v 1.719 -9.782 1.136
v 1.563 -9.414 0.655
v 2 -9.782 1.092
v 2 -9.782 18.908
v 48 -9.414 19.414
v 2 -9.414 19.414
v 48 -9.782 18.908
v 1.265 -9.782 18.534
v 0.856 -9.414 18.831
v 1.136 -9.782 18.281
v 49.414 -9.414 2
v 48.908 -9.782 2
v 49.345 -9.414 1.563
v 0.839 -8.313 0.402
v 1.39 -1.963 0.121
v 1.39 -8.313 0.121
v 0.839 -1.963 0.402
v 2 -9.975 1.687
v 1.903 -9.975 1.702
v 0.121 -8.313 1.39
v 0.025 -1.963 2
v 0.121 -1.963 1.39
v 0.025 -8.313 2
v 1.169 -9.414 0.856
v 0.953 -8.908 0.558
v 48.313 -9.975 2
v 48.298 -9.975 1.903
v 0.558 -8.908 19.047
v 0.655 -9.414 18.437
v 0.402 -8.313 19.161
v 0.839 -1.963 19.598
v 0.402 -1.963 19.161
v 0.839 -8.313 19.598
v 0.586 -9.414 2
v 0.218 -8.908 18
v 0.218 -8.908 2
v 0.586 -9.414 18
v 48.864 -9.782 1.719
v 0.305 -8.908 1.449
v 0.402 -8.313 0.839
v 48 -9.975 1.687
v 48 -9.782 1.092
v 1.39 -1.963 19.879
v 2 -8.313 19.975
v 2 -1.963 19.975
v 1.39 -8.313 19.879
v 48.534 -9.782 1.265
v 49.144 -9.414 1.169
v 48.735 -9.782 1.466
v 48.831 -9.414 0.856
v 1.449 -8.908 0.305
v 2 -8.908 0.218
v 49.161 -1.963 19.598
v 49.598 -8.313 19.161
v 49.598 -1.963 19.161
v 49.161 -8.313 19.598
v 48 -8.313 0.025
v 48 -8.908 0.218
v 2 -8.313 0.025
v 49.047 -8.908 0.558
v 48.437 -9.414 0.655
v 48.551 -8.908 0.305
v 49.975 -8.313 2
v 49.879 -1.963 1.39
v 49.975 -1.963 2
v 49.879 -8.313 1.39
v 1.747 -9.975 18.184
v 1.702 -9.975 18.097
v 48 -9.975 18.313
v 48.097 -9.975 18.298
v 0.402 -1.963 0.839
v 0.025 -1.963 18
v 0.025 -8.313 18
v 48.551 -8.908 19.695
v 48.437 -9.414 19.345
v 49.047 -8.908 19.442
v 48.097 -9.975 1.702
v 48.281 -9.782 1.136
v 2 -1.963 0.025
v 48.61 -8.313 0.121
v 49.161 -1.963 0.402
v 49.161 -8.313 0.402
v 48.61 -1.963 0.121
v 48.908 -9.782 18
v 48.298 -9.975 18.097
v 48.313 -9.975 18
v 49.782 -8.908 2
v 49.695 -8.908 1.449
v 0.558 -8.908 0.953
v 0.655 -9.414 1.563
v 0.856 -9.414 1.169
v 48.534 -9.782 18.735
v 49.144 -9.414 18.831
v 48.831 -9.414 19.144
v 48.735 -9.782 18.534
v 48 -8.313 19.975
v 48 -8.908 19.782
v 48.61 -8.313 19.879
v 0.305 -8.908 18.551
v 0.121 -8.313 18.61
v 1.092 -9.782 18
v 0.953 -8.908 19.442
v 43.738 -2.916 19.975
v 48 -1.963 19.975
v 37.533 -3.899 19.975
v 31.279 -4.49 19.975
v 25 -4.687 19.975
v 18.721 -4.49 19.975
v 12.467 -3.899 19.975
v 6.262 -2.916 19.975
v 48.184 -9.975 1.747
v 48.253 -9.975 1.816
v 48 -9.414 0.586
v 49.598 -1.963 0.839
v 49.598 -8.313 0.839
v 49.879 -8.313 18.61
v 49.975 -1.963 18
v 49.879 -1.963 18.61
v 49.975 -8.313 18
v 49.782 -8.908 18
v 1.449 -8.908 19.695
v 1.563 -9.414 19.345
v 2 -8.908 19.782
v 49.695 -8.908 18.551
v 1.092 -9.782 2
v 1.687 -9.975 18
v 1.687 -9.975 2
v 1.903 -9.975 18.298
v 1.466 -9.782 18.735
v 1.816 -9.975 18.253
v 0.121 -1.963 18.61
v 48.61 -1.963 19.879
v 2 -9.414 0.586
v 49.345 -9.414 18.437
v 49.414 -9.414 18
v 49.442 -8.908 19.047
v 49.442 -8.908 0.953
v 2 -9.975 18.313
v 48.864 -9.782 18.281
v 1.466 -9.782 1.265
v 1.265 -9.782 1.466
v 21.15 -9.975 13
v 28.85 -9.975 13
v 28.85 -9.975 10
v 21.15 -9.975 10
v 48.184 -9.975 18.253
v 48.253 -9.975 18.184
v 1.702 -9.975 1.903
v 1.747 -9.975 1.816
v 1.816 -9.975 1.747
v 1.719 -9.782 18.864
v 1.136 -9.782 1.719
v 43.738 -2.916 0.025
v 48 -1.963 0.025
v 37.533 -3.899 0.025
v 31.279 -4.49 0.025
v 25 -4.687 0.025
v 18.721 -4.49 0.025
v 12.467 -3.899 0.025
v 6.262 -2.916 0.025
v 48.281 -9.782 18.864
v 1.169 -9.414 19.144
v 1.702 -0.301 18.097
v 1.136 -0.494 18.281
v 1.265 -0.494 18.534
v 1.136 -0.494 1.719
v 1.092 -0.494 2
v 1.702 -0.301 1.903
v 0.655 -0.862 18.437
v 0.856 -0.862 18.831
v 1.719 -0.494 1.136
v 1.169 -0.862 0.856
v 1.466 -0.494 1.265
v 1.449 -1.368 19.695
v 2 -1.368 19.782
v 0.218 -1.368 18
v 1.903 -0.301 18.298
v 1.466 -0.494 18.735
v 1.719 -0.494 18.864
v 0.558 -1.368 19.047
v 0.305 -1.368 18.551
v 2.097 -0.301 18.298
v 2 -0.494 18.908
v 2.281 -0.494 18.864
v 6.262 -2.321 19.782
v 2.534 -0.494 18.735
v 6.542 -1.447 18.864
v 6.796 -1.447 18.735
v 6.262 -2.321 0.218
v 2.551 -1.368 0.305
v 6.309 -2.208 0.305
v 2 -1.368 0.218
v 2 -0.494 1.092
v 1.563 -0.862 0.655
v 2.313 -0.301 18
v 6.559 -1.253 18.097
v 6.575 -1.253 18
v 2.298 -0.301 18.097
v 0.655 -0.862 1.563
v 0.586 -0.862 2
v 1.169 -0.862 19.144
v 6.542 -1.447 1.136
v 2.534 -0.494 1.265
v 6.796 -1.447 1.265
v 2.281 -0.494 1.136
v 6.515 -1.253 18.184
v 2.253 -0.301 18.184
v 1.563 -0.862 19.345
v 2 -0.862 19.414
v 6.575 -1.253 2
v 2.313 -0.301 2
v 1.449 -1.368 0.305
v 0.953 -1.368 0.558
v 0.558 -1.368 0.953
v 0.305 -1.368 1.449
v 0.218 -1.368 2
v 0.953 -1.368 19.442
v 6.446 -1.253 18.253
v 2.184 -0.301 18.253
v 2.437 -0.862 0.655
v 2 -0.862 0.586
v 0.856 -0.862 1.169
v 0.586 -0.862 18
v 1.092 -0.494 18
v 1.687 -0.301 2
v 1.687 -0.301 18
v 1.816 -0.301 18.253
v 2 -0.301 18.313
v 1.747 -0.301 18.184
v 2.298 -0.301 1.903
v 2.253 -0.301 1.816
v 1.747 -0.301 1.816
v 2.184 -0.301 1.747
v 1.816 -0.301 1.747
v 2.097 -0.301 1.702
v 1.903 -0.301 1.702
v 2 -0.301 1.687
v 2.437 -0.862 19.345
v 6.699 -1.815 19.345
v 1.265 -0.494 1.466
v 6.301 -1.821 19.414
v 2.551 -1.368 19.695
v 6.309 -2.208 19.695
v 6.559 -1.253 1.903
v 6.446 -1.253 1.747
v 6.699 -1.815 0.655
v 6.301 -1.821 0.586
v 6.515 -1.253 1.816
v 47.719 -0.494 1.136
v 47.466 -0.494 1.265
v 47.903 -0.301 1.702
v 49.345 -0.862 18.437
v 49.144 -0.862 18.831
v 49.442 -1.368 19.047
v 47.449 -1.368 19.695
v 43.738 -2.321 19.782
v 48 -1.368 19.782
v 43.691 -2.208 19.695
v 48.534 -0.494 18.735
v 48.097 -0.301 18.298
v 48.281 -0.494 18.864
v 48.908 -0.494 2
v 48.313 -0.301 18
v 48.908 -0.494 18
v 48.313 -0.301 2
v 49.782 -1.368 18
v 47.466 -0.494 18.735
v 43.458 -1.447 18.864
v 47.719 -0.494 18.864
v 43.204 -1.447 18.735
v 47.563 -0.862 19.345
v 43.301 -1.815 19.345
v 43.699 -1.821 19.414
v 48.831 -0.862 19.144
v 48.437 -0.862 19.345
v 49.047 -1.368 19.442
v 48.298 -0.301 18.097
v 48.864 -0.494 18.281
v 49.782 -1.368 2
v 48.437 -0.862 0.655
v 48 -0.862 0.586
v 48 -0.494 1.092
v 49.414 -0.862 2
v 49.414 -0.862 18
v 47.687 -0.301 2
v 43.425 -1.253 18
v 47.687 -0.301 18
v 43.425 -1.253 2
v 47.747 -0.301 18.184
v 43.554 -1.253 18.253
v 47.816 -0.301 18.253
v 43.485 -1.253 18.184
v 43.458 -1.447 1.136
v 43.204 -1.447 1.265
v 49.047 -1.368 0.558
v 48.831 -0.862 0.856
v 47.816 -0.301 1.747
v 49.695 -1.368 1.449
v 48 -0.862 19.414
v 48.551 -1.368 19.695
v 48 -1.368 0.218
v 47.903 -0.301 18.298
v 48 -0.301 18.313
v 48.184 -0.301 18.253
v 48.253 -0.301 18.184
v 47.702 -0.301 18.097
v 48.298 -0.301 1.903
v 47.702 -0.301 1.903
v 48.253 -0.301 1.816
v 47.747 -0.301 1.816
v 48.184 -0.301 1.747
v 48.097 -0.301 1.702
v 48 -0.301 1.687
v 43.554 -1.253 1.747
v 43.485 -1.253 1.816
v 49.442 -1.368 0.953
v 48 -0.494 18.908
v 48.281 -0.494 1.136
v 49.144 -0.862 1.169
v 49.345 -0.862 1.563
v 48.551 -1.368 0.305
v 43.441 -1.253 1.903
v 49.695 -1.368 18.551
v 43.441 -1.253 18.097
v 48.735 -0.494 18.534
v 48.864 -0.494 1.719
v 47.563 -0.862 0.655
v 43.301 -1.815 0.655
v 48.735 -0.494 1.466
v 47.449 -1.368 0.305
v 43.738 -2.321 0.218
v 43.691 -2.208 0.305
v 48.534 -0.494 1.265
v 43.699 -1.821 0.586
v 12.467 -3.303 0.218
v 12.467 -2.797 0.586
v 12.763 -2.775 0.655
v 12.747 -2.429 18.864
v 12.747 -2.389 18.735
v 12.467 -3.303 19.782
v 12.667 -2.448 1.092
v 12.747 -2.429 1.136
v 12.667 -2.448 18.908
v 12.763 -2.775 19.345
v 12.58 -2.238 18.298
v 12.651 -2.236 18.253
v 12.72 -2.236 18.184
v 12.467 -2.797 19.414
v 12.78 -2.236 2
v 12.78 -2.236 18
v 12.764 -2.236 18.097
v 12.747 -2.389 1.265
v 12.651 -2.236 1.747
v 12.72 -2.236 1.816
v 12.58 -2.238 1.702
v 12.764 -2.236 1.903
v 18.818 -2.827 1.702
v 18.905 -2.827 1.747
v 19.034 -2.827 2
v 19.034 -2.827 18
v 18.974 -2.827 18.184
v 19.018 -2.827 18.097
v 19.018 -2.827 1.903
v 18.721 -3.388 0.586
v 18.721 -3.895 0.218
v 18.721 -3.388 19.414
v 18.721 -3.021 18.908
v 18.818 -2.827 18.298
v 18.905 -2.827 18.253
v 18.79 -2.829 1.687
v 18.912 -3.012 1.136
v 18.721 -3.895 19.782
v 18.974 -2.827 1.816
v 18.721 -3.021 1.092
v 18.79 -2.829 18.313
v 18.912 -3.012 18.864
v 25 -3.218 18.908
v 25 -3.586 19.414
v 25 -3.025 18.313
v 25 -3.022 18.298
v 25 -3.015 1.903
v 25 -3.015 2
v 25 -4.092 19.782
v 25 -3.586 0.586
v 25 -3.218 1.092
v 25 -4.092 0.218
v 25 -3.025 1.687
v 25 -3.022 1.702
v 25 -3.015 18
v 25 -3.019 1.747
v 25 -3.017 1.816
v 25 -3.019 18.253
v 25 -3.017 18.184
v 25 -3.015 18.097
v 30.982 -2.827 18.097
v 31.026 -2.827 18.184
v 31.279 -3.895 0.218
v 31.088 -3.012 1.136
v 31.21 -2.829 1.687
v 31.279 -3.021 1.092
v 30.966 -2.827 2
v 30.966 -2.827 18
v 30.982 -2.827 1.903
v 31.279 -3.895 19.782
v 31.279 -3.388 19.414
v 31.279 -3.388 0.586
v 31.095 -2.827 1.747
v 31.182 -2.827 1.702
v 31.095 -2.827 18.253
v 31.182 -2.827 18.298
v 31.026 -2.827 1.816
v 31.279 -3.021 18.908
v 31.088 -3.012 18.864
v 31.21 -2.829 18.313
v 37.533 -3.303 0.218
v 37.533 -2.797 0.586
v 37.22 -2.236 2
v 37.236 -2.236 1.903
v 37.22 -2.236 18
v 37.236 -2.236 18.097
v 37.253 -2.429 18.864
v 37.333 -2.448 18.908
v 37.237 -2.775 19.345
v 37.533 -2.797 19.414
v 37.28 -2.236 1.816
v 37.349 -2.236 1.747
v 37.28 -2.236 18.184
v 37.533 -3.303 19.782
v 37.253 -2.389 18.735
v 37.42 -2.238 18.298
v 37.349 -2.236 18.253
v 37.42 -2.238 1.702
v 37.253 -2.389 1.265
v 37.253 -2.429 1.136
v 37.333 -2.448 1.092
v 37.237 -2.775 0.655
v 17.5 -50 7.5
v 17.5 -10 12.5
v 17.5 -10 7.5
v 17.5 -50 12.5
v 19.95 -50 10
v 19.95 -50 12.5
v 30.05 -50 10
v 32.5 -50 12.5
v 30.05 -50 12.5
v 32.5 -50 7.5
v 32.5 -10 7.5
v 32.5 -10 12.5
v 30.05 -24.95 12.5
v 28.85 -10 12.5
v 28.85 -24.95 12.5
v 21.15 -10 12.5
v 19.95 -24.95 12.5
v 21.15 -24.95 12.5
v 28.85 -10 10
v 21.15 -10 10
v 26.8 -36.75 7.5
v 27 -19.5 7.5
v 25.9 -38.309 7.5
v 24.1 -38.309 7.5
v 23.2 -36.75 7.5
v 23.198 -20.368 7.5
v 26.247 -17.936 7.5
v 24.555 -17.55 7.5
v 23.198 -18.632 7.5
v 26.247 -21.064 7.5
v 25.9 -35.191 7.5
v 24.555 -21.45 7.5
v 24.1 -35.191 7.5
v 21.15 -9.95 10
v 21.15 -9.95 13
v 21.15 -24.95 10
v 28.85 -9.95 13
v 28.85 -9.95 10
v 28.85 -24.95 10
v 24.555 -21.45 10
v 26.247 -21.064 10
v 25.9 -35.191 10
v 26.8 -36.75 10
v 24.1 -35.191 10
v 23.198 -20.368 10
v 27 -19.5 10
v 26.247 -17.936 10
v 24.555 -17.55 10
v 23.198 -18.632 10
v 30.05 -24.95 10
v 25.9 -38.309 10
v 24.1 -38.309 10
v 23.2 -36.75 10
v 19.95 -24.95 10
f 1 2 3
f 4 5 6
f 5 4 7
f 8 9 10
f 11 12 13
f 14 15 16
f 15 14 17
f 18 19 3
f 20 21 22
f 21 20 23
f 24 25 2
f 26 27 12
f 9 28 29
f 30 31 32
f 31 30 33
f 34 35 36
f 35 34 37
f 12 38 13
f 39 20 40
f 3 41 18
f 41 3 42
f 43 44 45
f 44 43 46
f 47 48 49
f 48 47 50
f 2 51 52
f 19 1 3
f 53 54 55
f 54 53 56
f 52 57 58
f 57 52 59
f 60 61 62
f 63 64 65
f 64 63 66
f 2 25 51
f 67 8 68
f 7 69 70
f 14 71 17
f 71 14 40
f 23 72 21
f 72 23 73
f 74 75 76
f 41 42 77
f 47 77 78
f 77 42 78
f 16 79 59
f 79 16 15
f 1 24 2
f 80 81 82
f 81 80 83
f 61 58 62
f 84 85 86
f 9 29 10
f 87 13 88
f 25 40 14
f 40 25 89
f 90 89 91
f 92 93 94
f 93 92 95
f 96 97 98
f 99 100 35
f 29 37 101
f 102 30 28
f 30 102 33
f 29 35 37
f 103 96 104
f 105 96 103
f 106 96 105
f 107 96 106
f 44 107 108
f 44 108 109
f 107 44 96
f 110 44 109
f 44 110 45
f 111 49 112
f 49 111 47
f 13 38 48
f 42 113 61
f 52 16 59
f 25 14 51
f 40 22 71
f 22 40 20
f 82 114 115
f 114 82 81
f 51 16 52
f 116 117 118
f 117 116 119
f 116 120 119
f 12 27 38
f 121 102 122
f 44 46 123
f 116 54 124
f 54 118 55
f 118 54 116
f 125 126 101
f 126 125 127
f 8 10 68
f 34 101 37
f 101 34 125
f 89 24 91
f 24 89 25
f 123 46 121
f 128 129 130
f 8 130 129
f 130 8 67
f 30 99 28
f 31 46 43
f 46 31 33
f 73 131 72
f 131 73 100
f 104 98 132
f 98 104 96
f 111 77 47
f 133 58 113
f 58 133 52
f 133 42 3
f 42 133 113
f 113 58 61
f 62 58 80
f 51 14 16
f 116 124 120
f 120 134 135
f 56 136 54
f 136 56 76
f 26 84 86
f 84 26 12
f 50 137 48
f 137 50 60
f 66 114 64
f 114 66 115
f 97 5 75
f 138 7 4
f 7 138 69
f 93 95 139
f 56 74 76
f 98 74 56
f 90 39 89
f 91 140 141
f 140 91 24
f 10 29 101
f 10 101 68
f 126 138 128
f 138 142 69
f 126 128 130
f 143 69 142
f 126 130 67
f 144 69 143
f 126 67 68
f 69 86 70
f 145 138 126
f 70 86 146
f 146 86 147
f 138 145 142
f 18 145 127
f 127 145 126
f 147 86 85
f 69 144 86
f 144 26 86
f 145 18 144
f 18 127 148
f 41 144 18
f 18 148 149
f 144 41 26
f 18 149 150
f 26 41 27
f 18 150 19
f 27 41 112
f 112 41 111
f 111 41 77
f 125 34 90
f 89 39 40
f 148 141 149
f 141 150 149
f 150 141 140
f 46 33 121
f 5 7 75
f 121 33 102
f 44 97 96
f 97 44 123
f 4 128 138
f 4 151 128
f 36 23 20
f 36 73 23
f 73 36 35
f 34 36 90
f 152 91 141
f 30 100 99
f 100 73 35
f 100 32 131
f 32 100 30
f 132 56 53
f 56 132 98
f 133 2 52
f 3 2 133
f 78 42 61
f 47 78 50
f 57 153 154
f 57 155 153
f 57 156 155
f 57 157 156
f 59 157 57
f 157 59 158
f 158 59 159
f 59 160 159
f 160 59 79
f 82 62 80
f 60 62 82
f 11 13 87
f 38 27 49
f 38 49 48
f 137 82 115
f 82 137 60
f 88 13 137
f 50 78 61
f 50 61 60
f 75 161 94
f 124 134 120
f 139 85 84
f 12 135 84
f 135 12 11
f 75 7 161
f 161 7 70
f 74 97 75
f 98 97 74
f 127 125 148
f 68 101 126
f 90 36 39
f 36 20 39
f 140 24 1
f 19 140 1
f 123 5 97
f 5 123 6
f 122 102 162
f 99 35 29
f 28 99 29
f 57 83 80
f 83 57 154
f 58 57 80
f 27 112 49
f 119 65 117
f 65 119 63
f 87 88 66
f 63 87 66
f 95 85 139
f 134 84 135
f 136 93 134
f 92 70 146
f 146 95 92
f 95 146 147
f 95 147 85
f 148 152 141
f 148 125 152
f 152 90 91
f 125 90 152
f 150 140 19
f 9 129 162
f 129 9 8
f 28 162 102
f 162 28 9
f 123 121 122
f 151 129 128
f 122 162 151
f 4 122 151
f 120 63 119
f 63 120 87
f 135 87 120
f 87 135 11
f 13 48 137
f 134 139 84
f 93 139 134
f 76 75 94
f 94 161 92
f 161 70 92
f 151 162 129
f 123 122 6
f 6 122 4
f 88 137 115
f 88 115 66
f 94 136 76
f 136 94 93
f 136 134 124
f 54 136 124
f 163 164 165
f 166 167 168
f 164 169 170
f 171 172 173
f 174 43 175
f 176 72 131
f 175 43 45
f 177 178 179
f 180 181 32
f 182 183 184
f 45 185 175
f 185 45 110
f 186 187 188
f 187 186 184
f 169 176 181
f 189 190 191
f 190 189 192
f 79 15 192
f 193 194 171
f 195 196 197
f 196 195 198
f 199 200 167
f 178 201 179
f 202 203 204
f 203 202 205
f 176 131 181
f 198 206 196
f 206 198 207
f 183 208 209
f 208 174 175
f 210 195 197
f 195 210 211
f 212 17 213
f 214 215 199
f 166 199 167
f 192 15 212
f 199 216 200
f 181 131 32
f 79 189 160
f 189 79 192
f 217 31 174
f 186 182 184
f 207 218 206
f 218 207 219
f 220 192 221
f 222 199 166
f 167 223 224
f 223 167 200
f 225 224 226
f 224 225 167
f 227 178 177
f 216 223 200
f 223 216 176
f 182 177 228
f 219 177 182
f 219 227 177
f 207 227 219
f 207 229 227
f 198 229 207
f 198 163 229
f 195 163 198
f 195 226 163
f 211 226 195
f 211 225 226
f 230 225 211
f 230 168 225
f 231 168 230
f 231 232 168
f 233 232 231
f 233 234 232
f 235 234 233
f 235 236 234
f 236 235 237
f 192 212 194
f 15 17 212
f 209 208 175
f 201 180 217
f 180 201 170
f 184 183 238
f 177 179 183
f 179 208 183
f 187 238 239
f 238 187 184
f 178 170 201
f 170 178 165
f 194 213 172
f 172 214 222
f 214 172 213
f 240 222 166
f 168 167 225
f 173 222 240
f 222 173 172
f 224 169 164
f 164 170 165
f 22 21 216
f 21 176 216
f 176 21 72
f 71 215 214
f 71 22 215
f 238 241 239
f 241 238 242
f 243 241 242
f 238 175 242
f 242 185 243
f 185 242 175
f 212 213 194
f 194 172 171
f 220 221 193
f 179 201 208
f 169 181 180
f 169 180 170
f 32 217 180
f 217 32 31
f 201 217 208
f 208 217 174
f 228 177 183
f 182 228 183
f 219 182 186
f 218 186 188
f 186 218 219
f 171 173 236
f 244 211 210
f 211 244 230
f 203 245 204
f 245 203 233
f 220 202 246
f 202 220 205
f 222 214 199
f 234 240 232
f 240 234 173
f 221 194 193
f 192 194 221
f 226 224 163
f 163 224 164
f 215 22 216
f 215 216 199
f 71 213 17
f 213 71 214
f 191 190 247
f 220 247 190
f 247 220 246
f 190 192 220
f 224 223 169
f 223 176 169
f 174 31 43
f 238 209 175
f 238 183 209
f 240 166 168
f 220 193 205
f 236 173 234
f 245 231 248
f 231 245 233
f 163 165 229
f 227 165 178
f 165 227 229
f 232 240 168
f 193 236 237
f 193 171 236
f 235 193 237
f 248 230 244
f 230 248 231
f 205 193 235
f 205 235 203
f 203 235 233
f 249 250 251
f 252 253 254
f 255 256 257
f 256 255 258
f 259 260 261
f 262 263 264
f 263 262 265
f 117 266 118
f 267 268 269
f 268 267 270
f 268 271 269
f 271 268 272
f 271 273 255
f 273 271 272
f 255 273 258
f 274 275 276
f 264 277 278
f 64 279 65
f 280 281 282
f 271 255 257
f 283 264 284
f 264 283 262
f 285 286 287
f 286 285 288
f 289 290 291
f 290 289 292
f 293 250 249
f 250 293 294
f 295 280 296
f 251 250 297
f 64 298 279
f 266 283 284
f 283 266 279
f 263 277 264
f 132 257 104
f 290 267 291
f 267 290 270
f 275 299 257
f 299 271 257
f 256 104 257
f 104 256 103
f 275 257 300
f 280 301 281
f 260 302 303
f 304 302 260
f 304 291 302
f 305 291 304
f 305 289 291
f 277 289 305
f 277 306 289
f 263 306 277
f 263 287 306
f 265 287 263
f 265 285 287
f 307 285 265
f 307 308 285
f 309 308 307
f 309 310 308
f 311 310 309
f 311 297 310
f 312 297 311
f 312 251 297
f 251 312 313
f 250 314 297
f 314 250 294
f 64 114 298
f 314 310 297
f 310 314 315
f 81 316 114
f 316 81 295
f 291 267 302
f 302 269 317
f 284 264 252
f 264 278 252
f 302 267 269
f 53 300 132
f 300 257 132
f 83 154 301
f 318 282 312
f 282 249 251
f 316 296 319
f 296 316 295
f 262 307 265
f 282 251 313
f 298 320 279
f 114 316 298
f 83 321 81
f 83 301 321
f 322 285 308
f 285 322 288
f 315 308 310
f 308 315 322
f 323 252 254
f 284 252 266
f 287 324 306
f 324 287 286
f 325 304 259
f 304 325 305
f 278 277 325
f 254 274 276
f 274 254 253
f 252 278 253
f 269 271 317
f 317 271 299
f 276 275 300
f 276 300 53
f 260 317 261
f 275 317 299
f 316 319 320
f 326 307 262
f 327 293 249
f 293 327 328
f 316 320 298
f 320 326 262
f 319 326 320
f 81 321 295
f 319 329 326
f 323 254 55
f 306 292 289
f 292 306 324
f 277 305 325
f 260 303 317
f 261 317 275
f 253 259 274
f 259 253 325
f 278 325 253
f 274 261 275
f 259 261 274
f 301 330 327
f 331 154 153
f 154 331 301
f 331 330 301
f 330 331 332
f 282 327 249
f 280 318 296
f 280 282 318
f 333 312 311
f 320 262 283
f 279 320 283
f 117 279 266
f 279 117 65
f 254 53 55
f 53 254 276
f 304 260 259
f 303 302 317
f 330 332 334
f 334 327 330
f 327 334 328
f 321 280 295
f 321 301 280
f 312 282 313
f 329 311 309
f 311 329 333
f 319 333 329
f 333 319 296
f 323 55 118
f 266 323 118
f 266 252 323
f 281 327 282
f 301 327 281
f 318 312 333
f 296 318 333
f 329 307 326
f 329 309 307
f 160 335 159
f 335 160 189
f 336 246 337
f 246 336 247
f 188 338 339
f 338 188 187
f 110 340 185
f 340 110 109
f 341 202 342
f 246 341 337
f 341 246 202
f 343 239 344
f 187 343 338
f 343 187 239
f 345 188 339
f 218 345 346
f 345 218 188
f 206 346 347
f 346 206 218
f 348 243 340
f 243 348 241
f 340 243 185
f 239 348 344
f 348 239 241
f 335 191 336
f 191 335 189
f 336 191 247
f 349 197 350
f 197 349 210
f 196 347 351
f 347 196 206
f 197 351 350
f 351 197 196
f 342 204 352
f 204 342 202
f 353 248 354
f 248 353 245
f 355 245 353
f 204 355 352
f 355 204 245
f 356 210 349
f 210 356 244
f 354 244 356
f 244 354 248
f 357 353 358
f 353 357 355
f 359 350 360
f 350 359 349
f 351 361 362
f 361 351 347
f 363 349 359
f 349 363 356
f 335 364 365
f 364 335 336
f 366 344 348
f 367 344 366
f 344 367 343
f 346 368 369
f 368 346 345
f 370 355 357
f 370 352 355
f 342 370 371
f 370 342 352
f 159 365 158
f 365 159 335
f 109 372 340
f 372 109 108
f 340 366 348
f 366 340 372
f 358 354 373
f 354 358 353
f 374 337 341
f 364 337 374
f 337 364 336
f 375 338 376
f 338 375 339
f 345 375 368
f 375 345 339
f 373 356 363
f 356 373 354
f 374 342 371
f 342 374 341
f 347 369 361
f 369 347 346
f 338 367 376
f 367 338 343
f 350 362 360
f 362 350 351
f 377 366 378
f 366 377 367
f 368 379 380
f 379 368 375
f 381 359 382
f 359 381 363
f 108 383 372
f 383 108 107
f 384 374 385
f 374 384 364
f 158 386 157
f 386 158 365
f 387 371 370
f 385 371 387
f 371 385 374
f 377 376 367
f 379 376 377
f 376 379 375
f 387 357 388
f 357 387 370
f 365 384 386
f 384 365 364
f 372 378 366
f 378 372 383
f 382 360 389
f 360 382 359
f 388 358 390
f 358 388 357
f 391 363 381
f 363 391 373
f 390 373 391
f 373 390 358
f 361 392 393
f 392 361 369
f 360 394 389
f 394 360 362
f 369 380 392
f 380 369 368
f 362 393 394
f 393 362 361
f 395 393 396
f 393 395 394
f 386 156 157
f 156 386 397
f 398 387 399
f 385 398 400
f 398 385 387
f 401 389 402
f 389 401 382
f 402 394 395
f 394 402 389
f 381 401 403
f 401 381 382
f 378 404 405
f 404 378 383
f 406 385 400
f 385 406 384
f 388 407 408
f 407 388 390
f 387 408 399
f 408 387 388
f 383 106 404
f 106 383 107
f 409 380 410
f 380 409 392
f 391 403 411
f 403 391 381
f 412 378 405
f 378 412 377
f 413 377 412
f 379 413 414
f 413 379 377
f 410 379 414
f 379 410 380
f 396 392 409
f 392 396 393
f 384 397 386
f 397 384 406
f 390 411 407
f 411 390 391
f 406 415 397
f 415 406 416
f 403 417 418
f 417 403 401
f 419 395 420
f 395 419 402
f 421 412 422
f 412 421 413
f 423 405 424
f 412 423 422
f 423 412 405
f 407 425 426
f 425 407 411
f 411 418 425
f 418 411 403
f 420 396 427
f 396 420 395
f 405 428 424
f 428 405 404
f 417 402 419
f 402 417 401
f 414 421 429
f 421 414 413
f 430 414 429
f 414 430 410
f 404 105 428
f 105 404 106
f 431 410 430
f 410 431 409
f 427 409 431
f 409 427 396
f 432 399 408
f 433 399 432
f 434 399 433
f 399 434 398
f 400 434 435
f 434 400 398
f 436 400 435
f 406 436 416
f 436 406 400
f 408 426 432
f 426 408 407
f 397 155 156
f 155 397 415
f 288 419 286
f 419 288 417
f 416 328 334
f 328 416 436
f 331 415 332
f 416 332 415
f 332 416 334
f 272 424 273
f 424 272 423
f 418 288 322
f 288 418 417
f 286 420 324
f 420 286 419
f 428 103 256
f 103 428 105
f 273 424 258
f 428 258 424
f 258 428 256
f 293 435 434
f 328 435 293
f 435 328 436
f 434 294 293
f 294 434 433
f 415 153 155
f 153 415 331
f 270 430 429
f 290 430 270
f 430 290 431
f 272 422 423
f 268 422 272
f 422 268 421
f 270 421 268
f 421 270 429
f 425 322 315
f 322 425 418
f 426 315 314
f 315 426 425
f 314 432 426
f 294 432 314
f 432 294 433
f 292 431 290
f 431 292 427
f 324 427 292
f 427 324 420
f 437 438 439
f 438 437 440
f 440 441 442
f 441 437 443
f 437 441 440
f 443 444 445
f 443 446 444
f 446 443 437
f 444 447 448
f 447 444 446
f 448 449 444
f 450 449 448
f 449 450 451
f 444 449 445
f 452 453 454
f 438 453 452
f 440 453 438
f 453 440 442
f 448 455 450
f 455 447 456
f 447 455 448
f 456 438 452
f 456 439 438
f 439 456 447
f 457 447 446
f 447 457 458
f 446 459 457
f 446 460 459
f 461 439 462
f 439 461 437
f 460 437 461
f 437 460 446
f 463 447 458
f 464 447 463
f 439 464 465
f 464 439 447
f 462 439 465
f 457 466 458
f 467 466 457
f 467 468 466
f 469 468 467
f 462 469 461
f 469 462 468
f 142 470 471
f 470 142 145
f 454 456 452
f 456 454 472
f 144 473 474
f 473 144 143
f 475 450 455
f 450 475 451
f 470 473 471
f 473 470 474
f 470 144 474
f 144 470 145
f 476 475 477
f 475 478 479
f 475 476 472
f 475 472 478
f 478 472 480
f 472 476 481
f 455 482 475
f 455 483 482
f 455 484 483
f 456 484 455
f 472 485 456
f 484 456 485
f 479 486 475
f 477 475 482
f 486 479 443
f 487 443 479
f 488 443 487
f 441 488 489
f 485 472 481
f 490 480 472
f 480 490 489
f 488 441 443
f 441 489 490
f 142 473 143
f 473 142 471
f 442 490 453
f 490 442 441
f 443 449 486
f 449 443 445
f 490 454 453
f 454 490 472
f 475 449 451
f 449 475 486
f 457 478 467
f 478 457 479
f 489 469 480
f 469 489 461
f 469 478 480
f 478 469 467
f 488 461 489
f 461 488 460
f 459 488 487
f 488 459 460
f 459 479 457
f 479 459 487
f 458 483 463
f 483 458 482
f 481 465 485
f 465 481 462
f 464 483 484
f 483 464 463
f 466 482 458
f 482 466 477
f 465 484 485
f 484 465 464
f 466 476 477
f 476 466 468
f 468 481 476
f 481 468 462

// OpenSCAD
        slider = [50,20,10];
        
rotate([90,0,0])difference(){
    union(){
        minkowski(){
            difference(){
                translate([2,2,2])cube(slider-[4,4,4]);
                translate([25,-1,-95])rotate([-90,0,0])cylinder(h=25,r=100, $fn=100);
            }
            sphere(2,$fn=20);
        }
        translate([slider[0]/2,slider[1]/2,50/2+5])cube([15,5,40],center=true);
    }
    translate([slider[0]/2,slider[1]/2+1.5,50-40/2])cube([7.7,3,40.1],center=true);
    translate([slider[0]/2,slider[1]/2+1.5,50-25/2])cube([10.1,3,25.1],center=true);
    translate([25,-1,50-13.25])rotate([-90,0,0])cylinder(h=25,r=1.8);
    translate([25,-1,50-30.5])rotate([-90,0,0])cylinder(h=25,r=2);
}
